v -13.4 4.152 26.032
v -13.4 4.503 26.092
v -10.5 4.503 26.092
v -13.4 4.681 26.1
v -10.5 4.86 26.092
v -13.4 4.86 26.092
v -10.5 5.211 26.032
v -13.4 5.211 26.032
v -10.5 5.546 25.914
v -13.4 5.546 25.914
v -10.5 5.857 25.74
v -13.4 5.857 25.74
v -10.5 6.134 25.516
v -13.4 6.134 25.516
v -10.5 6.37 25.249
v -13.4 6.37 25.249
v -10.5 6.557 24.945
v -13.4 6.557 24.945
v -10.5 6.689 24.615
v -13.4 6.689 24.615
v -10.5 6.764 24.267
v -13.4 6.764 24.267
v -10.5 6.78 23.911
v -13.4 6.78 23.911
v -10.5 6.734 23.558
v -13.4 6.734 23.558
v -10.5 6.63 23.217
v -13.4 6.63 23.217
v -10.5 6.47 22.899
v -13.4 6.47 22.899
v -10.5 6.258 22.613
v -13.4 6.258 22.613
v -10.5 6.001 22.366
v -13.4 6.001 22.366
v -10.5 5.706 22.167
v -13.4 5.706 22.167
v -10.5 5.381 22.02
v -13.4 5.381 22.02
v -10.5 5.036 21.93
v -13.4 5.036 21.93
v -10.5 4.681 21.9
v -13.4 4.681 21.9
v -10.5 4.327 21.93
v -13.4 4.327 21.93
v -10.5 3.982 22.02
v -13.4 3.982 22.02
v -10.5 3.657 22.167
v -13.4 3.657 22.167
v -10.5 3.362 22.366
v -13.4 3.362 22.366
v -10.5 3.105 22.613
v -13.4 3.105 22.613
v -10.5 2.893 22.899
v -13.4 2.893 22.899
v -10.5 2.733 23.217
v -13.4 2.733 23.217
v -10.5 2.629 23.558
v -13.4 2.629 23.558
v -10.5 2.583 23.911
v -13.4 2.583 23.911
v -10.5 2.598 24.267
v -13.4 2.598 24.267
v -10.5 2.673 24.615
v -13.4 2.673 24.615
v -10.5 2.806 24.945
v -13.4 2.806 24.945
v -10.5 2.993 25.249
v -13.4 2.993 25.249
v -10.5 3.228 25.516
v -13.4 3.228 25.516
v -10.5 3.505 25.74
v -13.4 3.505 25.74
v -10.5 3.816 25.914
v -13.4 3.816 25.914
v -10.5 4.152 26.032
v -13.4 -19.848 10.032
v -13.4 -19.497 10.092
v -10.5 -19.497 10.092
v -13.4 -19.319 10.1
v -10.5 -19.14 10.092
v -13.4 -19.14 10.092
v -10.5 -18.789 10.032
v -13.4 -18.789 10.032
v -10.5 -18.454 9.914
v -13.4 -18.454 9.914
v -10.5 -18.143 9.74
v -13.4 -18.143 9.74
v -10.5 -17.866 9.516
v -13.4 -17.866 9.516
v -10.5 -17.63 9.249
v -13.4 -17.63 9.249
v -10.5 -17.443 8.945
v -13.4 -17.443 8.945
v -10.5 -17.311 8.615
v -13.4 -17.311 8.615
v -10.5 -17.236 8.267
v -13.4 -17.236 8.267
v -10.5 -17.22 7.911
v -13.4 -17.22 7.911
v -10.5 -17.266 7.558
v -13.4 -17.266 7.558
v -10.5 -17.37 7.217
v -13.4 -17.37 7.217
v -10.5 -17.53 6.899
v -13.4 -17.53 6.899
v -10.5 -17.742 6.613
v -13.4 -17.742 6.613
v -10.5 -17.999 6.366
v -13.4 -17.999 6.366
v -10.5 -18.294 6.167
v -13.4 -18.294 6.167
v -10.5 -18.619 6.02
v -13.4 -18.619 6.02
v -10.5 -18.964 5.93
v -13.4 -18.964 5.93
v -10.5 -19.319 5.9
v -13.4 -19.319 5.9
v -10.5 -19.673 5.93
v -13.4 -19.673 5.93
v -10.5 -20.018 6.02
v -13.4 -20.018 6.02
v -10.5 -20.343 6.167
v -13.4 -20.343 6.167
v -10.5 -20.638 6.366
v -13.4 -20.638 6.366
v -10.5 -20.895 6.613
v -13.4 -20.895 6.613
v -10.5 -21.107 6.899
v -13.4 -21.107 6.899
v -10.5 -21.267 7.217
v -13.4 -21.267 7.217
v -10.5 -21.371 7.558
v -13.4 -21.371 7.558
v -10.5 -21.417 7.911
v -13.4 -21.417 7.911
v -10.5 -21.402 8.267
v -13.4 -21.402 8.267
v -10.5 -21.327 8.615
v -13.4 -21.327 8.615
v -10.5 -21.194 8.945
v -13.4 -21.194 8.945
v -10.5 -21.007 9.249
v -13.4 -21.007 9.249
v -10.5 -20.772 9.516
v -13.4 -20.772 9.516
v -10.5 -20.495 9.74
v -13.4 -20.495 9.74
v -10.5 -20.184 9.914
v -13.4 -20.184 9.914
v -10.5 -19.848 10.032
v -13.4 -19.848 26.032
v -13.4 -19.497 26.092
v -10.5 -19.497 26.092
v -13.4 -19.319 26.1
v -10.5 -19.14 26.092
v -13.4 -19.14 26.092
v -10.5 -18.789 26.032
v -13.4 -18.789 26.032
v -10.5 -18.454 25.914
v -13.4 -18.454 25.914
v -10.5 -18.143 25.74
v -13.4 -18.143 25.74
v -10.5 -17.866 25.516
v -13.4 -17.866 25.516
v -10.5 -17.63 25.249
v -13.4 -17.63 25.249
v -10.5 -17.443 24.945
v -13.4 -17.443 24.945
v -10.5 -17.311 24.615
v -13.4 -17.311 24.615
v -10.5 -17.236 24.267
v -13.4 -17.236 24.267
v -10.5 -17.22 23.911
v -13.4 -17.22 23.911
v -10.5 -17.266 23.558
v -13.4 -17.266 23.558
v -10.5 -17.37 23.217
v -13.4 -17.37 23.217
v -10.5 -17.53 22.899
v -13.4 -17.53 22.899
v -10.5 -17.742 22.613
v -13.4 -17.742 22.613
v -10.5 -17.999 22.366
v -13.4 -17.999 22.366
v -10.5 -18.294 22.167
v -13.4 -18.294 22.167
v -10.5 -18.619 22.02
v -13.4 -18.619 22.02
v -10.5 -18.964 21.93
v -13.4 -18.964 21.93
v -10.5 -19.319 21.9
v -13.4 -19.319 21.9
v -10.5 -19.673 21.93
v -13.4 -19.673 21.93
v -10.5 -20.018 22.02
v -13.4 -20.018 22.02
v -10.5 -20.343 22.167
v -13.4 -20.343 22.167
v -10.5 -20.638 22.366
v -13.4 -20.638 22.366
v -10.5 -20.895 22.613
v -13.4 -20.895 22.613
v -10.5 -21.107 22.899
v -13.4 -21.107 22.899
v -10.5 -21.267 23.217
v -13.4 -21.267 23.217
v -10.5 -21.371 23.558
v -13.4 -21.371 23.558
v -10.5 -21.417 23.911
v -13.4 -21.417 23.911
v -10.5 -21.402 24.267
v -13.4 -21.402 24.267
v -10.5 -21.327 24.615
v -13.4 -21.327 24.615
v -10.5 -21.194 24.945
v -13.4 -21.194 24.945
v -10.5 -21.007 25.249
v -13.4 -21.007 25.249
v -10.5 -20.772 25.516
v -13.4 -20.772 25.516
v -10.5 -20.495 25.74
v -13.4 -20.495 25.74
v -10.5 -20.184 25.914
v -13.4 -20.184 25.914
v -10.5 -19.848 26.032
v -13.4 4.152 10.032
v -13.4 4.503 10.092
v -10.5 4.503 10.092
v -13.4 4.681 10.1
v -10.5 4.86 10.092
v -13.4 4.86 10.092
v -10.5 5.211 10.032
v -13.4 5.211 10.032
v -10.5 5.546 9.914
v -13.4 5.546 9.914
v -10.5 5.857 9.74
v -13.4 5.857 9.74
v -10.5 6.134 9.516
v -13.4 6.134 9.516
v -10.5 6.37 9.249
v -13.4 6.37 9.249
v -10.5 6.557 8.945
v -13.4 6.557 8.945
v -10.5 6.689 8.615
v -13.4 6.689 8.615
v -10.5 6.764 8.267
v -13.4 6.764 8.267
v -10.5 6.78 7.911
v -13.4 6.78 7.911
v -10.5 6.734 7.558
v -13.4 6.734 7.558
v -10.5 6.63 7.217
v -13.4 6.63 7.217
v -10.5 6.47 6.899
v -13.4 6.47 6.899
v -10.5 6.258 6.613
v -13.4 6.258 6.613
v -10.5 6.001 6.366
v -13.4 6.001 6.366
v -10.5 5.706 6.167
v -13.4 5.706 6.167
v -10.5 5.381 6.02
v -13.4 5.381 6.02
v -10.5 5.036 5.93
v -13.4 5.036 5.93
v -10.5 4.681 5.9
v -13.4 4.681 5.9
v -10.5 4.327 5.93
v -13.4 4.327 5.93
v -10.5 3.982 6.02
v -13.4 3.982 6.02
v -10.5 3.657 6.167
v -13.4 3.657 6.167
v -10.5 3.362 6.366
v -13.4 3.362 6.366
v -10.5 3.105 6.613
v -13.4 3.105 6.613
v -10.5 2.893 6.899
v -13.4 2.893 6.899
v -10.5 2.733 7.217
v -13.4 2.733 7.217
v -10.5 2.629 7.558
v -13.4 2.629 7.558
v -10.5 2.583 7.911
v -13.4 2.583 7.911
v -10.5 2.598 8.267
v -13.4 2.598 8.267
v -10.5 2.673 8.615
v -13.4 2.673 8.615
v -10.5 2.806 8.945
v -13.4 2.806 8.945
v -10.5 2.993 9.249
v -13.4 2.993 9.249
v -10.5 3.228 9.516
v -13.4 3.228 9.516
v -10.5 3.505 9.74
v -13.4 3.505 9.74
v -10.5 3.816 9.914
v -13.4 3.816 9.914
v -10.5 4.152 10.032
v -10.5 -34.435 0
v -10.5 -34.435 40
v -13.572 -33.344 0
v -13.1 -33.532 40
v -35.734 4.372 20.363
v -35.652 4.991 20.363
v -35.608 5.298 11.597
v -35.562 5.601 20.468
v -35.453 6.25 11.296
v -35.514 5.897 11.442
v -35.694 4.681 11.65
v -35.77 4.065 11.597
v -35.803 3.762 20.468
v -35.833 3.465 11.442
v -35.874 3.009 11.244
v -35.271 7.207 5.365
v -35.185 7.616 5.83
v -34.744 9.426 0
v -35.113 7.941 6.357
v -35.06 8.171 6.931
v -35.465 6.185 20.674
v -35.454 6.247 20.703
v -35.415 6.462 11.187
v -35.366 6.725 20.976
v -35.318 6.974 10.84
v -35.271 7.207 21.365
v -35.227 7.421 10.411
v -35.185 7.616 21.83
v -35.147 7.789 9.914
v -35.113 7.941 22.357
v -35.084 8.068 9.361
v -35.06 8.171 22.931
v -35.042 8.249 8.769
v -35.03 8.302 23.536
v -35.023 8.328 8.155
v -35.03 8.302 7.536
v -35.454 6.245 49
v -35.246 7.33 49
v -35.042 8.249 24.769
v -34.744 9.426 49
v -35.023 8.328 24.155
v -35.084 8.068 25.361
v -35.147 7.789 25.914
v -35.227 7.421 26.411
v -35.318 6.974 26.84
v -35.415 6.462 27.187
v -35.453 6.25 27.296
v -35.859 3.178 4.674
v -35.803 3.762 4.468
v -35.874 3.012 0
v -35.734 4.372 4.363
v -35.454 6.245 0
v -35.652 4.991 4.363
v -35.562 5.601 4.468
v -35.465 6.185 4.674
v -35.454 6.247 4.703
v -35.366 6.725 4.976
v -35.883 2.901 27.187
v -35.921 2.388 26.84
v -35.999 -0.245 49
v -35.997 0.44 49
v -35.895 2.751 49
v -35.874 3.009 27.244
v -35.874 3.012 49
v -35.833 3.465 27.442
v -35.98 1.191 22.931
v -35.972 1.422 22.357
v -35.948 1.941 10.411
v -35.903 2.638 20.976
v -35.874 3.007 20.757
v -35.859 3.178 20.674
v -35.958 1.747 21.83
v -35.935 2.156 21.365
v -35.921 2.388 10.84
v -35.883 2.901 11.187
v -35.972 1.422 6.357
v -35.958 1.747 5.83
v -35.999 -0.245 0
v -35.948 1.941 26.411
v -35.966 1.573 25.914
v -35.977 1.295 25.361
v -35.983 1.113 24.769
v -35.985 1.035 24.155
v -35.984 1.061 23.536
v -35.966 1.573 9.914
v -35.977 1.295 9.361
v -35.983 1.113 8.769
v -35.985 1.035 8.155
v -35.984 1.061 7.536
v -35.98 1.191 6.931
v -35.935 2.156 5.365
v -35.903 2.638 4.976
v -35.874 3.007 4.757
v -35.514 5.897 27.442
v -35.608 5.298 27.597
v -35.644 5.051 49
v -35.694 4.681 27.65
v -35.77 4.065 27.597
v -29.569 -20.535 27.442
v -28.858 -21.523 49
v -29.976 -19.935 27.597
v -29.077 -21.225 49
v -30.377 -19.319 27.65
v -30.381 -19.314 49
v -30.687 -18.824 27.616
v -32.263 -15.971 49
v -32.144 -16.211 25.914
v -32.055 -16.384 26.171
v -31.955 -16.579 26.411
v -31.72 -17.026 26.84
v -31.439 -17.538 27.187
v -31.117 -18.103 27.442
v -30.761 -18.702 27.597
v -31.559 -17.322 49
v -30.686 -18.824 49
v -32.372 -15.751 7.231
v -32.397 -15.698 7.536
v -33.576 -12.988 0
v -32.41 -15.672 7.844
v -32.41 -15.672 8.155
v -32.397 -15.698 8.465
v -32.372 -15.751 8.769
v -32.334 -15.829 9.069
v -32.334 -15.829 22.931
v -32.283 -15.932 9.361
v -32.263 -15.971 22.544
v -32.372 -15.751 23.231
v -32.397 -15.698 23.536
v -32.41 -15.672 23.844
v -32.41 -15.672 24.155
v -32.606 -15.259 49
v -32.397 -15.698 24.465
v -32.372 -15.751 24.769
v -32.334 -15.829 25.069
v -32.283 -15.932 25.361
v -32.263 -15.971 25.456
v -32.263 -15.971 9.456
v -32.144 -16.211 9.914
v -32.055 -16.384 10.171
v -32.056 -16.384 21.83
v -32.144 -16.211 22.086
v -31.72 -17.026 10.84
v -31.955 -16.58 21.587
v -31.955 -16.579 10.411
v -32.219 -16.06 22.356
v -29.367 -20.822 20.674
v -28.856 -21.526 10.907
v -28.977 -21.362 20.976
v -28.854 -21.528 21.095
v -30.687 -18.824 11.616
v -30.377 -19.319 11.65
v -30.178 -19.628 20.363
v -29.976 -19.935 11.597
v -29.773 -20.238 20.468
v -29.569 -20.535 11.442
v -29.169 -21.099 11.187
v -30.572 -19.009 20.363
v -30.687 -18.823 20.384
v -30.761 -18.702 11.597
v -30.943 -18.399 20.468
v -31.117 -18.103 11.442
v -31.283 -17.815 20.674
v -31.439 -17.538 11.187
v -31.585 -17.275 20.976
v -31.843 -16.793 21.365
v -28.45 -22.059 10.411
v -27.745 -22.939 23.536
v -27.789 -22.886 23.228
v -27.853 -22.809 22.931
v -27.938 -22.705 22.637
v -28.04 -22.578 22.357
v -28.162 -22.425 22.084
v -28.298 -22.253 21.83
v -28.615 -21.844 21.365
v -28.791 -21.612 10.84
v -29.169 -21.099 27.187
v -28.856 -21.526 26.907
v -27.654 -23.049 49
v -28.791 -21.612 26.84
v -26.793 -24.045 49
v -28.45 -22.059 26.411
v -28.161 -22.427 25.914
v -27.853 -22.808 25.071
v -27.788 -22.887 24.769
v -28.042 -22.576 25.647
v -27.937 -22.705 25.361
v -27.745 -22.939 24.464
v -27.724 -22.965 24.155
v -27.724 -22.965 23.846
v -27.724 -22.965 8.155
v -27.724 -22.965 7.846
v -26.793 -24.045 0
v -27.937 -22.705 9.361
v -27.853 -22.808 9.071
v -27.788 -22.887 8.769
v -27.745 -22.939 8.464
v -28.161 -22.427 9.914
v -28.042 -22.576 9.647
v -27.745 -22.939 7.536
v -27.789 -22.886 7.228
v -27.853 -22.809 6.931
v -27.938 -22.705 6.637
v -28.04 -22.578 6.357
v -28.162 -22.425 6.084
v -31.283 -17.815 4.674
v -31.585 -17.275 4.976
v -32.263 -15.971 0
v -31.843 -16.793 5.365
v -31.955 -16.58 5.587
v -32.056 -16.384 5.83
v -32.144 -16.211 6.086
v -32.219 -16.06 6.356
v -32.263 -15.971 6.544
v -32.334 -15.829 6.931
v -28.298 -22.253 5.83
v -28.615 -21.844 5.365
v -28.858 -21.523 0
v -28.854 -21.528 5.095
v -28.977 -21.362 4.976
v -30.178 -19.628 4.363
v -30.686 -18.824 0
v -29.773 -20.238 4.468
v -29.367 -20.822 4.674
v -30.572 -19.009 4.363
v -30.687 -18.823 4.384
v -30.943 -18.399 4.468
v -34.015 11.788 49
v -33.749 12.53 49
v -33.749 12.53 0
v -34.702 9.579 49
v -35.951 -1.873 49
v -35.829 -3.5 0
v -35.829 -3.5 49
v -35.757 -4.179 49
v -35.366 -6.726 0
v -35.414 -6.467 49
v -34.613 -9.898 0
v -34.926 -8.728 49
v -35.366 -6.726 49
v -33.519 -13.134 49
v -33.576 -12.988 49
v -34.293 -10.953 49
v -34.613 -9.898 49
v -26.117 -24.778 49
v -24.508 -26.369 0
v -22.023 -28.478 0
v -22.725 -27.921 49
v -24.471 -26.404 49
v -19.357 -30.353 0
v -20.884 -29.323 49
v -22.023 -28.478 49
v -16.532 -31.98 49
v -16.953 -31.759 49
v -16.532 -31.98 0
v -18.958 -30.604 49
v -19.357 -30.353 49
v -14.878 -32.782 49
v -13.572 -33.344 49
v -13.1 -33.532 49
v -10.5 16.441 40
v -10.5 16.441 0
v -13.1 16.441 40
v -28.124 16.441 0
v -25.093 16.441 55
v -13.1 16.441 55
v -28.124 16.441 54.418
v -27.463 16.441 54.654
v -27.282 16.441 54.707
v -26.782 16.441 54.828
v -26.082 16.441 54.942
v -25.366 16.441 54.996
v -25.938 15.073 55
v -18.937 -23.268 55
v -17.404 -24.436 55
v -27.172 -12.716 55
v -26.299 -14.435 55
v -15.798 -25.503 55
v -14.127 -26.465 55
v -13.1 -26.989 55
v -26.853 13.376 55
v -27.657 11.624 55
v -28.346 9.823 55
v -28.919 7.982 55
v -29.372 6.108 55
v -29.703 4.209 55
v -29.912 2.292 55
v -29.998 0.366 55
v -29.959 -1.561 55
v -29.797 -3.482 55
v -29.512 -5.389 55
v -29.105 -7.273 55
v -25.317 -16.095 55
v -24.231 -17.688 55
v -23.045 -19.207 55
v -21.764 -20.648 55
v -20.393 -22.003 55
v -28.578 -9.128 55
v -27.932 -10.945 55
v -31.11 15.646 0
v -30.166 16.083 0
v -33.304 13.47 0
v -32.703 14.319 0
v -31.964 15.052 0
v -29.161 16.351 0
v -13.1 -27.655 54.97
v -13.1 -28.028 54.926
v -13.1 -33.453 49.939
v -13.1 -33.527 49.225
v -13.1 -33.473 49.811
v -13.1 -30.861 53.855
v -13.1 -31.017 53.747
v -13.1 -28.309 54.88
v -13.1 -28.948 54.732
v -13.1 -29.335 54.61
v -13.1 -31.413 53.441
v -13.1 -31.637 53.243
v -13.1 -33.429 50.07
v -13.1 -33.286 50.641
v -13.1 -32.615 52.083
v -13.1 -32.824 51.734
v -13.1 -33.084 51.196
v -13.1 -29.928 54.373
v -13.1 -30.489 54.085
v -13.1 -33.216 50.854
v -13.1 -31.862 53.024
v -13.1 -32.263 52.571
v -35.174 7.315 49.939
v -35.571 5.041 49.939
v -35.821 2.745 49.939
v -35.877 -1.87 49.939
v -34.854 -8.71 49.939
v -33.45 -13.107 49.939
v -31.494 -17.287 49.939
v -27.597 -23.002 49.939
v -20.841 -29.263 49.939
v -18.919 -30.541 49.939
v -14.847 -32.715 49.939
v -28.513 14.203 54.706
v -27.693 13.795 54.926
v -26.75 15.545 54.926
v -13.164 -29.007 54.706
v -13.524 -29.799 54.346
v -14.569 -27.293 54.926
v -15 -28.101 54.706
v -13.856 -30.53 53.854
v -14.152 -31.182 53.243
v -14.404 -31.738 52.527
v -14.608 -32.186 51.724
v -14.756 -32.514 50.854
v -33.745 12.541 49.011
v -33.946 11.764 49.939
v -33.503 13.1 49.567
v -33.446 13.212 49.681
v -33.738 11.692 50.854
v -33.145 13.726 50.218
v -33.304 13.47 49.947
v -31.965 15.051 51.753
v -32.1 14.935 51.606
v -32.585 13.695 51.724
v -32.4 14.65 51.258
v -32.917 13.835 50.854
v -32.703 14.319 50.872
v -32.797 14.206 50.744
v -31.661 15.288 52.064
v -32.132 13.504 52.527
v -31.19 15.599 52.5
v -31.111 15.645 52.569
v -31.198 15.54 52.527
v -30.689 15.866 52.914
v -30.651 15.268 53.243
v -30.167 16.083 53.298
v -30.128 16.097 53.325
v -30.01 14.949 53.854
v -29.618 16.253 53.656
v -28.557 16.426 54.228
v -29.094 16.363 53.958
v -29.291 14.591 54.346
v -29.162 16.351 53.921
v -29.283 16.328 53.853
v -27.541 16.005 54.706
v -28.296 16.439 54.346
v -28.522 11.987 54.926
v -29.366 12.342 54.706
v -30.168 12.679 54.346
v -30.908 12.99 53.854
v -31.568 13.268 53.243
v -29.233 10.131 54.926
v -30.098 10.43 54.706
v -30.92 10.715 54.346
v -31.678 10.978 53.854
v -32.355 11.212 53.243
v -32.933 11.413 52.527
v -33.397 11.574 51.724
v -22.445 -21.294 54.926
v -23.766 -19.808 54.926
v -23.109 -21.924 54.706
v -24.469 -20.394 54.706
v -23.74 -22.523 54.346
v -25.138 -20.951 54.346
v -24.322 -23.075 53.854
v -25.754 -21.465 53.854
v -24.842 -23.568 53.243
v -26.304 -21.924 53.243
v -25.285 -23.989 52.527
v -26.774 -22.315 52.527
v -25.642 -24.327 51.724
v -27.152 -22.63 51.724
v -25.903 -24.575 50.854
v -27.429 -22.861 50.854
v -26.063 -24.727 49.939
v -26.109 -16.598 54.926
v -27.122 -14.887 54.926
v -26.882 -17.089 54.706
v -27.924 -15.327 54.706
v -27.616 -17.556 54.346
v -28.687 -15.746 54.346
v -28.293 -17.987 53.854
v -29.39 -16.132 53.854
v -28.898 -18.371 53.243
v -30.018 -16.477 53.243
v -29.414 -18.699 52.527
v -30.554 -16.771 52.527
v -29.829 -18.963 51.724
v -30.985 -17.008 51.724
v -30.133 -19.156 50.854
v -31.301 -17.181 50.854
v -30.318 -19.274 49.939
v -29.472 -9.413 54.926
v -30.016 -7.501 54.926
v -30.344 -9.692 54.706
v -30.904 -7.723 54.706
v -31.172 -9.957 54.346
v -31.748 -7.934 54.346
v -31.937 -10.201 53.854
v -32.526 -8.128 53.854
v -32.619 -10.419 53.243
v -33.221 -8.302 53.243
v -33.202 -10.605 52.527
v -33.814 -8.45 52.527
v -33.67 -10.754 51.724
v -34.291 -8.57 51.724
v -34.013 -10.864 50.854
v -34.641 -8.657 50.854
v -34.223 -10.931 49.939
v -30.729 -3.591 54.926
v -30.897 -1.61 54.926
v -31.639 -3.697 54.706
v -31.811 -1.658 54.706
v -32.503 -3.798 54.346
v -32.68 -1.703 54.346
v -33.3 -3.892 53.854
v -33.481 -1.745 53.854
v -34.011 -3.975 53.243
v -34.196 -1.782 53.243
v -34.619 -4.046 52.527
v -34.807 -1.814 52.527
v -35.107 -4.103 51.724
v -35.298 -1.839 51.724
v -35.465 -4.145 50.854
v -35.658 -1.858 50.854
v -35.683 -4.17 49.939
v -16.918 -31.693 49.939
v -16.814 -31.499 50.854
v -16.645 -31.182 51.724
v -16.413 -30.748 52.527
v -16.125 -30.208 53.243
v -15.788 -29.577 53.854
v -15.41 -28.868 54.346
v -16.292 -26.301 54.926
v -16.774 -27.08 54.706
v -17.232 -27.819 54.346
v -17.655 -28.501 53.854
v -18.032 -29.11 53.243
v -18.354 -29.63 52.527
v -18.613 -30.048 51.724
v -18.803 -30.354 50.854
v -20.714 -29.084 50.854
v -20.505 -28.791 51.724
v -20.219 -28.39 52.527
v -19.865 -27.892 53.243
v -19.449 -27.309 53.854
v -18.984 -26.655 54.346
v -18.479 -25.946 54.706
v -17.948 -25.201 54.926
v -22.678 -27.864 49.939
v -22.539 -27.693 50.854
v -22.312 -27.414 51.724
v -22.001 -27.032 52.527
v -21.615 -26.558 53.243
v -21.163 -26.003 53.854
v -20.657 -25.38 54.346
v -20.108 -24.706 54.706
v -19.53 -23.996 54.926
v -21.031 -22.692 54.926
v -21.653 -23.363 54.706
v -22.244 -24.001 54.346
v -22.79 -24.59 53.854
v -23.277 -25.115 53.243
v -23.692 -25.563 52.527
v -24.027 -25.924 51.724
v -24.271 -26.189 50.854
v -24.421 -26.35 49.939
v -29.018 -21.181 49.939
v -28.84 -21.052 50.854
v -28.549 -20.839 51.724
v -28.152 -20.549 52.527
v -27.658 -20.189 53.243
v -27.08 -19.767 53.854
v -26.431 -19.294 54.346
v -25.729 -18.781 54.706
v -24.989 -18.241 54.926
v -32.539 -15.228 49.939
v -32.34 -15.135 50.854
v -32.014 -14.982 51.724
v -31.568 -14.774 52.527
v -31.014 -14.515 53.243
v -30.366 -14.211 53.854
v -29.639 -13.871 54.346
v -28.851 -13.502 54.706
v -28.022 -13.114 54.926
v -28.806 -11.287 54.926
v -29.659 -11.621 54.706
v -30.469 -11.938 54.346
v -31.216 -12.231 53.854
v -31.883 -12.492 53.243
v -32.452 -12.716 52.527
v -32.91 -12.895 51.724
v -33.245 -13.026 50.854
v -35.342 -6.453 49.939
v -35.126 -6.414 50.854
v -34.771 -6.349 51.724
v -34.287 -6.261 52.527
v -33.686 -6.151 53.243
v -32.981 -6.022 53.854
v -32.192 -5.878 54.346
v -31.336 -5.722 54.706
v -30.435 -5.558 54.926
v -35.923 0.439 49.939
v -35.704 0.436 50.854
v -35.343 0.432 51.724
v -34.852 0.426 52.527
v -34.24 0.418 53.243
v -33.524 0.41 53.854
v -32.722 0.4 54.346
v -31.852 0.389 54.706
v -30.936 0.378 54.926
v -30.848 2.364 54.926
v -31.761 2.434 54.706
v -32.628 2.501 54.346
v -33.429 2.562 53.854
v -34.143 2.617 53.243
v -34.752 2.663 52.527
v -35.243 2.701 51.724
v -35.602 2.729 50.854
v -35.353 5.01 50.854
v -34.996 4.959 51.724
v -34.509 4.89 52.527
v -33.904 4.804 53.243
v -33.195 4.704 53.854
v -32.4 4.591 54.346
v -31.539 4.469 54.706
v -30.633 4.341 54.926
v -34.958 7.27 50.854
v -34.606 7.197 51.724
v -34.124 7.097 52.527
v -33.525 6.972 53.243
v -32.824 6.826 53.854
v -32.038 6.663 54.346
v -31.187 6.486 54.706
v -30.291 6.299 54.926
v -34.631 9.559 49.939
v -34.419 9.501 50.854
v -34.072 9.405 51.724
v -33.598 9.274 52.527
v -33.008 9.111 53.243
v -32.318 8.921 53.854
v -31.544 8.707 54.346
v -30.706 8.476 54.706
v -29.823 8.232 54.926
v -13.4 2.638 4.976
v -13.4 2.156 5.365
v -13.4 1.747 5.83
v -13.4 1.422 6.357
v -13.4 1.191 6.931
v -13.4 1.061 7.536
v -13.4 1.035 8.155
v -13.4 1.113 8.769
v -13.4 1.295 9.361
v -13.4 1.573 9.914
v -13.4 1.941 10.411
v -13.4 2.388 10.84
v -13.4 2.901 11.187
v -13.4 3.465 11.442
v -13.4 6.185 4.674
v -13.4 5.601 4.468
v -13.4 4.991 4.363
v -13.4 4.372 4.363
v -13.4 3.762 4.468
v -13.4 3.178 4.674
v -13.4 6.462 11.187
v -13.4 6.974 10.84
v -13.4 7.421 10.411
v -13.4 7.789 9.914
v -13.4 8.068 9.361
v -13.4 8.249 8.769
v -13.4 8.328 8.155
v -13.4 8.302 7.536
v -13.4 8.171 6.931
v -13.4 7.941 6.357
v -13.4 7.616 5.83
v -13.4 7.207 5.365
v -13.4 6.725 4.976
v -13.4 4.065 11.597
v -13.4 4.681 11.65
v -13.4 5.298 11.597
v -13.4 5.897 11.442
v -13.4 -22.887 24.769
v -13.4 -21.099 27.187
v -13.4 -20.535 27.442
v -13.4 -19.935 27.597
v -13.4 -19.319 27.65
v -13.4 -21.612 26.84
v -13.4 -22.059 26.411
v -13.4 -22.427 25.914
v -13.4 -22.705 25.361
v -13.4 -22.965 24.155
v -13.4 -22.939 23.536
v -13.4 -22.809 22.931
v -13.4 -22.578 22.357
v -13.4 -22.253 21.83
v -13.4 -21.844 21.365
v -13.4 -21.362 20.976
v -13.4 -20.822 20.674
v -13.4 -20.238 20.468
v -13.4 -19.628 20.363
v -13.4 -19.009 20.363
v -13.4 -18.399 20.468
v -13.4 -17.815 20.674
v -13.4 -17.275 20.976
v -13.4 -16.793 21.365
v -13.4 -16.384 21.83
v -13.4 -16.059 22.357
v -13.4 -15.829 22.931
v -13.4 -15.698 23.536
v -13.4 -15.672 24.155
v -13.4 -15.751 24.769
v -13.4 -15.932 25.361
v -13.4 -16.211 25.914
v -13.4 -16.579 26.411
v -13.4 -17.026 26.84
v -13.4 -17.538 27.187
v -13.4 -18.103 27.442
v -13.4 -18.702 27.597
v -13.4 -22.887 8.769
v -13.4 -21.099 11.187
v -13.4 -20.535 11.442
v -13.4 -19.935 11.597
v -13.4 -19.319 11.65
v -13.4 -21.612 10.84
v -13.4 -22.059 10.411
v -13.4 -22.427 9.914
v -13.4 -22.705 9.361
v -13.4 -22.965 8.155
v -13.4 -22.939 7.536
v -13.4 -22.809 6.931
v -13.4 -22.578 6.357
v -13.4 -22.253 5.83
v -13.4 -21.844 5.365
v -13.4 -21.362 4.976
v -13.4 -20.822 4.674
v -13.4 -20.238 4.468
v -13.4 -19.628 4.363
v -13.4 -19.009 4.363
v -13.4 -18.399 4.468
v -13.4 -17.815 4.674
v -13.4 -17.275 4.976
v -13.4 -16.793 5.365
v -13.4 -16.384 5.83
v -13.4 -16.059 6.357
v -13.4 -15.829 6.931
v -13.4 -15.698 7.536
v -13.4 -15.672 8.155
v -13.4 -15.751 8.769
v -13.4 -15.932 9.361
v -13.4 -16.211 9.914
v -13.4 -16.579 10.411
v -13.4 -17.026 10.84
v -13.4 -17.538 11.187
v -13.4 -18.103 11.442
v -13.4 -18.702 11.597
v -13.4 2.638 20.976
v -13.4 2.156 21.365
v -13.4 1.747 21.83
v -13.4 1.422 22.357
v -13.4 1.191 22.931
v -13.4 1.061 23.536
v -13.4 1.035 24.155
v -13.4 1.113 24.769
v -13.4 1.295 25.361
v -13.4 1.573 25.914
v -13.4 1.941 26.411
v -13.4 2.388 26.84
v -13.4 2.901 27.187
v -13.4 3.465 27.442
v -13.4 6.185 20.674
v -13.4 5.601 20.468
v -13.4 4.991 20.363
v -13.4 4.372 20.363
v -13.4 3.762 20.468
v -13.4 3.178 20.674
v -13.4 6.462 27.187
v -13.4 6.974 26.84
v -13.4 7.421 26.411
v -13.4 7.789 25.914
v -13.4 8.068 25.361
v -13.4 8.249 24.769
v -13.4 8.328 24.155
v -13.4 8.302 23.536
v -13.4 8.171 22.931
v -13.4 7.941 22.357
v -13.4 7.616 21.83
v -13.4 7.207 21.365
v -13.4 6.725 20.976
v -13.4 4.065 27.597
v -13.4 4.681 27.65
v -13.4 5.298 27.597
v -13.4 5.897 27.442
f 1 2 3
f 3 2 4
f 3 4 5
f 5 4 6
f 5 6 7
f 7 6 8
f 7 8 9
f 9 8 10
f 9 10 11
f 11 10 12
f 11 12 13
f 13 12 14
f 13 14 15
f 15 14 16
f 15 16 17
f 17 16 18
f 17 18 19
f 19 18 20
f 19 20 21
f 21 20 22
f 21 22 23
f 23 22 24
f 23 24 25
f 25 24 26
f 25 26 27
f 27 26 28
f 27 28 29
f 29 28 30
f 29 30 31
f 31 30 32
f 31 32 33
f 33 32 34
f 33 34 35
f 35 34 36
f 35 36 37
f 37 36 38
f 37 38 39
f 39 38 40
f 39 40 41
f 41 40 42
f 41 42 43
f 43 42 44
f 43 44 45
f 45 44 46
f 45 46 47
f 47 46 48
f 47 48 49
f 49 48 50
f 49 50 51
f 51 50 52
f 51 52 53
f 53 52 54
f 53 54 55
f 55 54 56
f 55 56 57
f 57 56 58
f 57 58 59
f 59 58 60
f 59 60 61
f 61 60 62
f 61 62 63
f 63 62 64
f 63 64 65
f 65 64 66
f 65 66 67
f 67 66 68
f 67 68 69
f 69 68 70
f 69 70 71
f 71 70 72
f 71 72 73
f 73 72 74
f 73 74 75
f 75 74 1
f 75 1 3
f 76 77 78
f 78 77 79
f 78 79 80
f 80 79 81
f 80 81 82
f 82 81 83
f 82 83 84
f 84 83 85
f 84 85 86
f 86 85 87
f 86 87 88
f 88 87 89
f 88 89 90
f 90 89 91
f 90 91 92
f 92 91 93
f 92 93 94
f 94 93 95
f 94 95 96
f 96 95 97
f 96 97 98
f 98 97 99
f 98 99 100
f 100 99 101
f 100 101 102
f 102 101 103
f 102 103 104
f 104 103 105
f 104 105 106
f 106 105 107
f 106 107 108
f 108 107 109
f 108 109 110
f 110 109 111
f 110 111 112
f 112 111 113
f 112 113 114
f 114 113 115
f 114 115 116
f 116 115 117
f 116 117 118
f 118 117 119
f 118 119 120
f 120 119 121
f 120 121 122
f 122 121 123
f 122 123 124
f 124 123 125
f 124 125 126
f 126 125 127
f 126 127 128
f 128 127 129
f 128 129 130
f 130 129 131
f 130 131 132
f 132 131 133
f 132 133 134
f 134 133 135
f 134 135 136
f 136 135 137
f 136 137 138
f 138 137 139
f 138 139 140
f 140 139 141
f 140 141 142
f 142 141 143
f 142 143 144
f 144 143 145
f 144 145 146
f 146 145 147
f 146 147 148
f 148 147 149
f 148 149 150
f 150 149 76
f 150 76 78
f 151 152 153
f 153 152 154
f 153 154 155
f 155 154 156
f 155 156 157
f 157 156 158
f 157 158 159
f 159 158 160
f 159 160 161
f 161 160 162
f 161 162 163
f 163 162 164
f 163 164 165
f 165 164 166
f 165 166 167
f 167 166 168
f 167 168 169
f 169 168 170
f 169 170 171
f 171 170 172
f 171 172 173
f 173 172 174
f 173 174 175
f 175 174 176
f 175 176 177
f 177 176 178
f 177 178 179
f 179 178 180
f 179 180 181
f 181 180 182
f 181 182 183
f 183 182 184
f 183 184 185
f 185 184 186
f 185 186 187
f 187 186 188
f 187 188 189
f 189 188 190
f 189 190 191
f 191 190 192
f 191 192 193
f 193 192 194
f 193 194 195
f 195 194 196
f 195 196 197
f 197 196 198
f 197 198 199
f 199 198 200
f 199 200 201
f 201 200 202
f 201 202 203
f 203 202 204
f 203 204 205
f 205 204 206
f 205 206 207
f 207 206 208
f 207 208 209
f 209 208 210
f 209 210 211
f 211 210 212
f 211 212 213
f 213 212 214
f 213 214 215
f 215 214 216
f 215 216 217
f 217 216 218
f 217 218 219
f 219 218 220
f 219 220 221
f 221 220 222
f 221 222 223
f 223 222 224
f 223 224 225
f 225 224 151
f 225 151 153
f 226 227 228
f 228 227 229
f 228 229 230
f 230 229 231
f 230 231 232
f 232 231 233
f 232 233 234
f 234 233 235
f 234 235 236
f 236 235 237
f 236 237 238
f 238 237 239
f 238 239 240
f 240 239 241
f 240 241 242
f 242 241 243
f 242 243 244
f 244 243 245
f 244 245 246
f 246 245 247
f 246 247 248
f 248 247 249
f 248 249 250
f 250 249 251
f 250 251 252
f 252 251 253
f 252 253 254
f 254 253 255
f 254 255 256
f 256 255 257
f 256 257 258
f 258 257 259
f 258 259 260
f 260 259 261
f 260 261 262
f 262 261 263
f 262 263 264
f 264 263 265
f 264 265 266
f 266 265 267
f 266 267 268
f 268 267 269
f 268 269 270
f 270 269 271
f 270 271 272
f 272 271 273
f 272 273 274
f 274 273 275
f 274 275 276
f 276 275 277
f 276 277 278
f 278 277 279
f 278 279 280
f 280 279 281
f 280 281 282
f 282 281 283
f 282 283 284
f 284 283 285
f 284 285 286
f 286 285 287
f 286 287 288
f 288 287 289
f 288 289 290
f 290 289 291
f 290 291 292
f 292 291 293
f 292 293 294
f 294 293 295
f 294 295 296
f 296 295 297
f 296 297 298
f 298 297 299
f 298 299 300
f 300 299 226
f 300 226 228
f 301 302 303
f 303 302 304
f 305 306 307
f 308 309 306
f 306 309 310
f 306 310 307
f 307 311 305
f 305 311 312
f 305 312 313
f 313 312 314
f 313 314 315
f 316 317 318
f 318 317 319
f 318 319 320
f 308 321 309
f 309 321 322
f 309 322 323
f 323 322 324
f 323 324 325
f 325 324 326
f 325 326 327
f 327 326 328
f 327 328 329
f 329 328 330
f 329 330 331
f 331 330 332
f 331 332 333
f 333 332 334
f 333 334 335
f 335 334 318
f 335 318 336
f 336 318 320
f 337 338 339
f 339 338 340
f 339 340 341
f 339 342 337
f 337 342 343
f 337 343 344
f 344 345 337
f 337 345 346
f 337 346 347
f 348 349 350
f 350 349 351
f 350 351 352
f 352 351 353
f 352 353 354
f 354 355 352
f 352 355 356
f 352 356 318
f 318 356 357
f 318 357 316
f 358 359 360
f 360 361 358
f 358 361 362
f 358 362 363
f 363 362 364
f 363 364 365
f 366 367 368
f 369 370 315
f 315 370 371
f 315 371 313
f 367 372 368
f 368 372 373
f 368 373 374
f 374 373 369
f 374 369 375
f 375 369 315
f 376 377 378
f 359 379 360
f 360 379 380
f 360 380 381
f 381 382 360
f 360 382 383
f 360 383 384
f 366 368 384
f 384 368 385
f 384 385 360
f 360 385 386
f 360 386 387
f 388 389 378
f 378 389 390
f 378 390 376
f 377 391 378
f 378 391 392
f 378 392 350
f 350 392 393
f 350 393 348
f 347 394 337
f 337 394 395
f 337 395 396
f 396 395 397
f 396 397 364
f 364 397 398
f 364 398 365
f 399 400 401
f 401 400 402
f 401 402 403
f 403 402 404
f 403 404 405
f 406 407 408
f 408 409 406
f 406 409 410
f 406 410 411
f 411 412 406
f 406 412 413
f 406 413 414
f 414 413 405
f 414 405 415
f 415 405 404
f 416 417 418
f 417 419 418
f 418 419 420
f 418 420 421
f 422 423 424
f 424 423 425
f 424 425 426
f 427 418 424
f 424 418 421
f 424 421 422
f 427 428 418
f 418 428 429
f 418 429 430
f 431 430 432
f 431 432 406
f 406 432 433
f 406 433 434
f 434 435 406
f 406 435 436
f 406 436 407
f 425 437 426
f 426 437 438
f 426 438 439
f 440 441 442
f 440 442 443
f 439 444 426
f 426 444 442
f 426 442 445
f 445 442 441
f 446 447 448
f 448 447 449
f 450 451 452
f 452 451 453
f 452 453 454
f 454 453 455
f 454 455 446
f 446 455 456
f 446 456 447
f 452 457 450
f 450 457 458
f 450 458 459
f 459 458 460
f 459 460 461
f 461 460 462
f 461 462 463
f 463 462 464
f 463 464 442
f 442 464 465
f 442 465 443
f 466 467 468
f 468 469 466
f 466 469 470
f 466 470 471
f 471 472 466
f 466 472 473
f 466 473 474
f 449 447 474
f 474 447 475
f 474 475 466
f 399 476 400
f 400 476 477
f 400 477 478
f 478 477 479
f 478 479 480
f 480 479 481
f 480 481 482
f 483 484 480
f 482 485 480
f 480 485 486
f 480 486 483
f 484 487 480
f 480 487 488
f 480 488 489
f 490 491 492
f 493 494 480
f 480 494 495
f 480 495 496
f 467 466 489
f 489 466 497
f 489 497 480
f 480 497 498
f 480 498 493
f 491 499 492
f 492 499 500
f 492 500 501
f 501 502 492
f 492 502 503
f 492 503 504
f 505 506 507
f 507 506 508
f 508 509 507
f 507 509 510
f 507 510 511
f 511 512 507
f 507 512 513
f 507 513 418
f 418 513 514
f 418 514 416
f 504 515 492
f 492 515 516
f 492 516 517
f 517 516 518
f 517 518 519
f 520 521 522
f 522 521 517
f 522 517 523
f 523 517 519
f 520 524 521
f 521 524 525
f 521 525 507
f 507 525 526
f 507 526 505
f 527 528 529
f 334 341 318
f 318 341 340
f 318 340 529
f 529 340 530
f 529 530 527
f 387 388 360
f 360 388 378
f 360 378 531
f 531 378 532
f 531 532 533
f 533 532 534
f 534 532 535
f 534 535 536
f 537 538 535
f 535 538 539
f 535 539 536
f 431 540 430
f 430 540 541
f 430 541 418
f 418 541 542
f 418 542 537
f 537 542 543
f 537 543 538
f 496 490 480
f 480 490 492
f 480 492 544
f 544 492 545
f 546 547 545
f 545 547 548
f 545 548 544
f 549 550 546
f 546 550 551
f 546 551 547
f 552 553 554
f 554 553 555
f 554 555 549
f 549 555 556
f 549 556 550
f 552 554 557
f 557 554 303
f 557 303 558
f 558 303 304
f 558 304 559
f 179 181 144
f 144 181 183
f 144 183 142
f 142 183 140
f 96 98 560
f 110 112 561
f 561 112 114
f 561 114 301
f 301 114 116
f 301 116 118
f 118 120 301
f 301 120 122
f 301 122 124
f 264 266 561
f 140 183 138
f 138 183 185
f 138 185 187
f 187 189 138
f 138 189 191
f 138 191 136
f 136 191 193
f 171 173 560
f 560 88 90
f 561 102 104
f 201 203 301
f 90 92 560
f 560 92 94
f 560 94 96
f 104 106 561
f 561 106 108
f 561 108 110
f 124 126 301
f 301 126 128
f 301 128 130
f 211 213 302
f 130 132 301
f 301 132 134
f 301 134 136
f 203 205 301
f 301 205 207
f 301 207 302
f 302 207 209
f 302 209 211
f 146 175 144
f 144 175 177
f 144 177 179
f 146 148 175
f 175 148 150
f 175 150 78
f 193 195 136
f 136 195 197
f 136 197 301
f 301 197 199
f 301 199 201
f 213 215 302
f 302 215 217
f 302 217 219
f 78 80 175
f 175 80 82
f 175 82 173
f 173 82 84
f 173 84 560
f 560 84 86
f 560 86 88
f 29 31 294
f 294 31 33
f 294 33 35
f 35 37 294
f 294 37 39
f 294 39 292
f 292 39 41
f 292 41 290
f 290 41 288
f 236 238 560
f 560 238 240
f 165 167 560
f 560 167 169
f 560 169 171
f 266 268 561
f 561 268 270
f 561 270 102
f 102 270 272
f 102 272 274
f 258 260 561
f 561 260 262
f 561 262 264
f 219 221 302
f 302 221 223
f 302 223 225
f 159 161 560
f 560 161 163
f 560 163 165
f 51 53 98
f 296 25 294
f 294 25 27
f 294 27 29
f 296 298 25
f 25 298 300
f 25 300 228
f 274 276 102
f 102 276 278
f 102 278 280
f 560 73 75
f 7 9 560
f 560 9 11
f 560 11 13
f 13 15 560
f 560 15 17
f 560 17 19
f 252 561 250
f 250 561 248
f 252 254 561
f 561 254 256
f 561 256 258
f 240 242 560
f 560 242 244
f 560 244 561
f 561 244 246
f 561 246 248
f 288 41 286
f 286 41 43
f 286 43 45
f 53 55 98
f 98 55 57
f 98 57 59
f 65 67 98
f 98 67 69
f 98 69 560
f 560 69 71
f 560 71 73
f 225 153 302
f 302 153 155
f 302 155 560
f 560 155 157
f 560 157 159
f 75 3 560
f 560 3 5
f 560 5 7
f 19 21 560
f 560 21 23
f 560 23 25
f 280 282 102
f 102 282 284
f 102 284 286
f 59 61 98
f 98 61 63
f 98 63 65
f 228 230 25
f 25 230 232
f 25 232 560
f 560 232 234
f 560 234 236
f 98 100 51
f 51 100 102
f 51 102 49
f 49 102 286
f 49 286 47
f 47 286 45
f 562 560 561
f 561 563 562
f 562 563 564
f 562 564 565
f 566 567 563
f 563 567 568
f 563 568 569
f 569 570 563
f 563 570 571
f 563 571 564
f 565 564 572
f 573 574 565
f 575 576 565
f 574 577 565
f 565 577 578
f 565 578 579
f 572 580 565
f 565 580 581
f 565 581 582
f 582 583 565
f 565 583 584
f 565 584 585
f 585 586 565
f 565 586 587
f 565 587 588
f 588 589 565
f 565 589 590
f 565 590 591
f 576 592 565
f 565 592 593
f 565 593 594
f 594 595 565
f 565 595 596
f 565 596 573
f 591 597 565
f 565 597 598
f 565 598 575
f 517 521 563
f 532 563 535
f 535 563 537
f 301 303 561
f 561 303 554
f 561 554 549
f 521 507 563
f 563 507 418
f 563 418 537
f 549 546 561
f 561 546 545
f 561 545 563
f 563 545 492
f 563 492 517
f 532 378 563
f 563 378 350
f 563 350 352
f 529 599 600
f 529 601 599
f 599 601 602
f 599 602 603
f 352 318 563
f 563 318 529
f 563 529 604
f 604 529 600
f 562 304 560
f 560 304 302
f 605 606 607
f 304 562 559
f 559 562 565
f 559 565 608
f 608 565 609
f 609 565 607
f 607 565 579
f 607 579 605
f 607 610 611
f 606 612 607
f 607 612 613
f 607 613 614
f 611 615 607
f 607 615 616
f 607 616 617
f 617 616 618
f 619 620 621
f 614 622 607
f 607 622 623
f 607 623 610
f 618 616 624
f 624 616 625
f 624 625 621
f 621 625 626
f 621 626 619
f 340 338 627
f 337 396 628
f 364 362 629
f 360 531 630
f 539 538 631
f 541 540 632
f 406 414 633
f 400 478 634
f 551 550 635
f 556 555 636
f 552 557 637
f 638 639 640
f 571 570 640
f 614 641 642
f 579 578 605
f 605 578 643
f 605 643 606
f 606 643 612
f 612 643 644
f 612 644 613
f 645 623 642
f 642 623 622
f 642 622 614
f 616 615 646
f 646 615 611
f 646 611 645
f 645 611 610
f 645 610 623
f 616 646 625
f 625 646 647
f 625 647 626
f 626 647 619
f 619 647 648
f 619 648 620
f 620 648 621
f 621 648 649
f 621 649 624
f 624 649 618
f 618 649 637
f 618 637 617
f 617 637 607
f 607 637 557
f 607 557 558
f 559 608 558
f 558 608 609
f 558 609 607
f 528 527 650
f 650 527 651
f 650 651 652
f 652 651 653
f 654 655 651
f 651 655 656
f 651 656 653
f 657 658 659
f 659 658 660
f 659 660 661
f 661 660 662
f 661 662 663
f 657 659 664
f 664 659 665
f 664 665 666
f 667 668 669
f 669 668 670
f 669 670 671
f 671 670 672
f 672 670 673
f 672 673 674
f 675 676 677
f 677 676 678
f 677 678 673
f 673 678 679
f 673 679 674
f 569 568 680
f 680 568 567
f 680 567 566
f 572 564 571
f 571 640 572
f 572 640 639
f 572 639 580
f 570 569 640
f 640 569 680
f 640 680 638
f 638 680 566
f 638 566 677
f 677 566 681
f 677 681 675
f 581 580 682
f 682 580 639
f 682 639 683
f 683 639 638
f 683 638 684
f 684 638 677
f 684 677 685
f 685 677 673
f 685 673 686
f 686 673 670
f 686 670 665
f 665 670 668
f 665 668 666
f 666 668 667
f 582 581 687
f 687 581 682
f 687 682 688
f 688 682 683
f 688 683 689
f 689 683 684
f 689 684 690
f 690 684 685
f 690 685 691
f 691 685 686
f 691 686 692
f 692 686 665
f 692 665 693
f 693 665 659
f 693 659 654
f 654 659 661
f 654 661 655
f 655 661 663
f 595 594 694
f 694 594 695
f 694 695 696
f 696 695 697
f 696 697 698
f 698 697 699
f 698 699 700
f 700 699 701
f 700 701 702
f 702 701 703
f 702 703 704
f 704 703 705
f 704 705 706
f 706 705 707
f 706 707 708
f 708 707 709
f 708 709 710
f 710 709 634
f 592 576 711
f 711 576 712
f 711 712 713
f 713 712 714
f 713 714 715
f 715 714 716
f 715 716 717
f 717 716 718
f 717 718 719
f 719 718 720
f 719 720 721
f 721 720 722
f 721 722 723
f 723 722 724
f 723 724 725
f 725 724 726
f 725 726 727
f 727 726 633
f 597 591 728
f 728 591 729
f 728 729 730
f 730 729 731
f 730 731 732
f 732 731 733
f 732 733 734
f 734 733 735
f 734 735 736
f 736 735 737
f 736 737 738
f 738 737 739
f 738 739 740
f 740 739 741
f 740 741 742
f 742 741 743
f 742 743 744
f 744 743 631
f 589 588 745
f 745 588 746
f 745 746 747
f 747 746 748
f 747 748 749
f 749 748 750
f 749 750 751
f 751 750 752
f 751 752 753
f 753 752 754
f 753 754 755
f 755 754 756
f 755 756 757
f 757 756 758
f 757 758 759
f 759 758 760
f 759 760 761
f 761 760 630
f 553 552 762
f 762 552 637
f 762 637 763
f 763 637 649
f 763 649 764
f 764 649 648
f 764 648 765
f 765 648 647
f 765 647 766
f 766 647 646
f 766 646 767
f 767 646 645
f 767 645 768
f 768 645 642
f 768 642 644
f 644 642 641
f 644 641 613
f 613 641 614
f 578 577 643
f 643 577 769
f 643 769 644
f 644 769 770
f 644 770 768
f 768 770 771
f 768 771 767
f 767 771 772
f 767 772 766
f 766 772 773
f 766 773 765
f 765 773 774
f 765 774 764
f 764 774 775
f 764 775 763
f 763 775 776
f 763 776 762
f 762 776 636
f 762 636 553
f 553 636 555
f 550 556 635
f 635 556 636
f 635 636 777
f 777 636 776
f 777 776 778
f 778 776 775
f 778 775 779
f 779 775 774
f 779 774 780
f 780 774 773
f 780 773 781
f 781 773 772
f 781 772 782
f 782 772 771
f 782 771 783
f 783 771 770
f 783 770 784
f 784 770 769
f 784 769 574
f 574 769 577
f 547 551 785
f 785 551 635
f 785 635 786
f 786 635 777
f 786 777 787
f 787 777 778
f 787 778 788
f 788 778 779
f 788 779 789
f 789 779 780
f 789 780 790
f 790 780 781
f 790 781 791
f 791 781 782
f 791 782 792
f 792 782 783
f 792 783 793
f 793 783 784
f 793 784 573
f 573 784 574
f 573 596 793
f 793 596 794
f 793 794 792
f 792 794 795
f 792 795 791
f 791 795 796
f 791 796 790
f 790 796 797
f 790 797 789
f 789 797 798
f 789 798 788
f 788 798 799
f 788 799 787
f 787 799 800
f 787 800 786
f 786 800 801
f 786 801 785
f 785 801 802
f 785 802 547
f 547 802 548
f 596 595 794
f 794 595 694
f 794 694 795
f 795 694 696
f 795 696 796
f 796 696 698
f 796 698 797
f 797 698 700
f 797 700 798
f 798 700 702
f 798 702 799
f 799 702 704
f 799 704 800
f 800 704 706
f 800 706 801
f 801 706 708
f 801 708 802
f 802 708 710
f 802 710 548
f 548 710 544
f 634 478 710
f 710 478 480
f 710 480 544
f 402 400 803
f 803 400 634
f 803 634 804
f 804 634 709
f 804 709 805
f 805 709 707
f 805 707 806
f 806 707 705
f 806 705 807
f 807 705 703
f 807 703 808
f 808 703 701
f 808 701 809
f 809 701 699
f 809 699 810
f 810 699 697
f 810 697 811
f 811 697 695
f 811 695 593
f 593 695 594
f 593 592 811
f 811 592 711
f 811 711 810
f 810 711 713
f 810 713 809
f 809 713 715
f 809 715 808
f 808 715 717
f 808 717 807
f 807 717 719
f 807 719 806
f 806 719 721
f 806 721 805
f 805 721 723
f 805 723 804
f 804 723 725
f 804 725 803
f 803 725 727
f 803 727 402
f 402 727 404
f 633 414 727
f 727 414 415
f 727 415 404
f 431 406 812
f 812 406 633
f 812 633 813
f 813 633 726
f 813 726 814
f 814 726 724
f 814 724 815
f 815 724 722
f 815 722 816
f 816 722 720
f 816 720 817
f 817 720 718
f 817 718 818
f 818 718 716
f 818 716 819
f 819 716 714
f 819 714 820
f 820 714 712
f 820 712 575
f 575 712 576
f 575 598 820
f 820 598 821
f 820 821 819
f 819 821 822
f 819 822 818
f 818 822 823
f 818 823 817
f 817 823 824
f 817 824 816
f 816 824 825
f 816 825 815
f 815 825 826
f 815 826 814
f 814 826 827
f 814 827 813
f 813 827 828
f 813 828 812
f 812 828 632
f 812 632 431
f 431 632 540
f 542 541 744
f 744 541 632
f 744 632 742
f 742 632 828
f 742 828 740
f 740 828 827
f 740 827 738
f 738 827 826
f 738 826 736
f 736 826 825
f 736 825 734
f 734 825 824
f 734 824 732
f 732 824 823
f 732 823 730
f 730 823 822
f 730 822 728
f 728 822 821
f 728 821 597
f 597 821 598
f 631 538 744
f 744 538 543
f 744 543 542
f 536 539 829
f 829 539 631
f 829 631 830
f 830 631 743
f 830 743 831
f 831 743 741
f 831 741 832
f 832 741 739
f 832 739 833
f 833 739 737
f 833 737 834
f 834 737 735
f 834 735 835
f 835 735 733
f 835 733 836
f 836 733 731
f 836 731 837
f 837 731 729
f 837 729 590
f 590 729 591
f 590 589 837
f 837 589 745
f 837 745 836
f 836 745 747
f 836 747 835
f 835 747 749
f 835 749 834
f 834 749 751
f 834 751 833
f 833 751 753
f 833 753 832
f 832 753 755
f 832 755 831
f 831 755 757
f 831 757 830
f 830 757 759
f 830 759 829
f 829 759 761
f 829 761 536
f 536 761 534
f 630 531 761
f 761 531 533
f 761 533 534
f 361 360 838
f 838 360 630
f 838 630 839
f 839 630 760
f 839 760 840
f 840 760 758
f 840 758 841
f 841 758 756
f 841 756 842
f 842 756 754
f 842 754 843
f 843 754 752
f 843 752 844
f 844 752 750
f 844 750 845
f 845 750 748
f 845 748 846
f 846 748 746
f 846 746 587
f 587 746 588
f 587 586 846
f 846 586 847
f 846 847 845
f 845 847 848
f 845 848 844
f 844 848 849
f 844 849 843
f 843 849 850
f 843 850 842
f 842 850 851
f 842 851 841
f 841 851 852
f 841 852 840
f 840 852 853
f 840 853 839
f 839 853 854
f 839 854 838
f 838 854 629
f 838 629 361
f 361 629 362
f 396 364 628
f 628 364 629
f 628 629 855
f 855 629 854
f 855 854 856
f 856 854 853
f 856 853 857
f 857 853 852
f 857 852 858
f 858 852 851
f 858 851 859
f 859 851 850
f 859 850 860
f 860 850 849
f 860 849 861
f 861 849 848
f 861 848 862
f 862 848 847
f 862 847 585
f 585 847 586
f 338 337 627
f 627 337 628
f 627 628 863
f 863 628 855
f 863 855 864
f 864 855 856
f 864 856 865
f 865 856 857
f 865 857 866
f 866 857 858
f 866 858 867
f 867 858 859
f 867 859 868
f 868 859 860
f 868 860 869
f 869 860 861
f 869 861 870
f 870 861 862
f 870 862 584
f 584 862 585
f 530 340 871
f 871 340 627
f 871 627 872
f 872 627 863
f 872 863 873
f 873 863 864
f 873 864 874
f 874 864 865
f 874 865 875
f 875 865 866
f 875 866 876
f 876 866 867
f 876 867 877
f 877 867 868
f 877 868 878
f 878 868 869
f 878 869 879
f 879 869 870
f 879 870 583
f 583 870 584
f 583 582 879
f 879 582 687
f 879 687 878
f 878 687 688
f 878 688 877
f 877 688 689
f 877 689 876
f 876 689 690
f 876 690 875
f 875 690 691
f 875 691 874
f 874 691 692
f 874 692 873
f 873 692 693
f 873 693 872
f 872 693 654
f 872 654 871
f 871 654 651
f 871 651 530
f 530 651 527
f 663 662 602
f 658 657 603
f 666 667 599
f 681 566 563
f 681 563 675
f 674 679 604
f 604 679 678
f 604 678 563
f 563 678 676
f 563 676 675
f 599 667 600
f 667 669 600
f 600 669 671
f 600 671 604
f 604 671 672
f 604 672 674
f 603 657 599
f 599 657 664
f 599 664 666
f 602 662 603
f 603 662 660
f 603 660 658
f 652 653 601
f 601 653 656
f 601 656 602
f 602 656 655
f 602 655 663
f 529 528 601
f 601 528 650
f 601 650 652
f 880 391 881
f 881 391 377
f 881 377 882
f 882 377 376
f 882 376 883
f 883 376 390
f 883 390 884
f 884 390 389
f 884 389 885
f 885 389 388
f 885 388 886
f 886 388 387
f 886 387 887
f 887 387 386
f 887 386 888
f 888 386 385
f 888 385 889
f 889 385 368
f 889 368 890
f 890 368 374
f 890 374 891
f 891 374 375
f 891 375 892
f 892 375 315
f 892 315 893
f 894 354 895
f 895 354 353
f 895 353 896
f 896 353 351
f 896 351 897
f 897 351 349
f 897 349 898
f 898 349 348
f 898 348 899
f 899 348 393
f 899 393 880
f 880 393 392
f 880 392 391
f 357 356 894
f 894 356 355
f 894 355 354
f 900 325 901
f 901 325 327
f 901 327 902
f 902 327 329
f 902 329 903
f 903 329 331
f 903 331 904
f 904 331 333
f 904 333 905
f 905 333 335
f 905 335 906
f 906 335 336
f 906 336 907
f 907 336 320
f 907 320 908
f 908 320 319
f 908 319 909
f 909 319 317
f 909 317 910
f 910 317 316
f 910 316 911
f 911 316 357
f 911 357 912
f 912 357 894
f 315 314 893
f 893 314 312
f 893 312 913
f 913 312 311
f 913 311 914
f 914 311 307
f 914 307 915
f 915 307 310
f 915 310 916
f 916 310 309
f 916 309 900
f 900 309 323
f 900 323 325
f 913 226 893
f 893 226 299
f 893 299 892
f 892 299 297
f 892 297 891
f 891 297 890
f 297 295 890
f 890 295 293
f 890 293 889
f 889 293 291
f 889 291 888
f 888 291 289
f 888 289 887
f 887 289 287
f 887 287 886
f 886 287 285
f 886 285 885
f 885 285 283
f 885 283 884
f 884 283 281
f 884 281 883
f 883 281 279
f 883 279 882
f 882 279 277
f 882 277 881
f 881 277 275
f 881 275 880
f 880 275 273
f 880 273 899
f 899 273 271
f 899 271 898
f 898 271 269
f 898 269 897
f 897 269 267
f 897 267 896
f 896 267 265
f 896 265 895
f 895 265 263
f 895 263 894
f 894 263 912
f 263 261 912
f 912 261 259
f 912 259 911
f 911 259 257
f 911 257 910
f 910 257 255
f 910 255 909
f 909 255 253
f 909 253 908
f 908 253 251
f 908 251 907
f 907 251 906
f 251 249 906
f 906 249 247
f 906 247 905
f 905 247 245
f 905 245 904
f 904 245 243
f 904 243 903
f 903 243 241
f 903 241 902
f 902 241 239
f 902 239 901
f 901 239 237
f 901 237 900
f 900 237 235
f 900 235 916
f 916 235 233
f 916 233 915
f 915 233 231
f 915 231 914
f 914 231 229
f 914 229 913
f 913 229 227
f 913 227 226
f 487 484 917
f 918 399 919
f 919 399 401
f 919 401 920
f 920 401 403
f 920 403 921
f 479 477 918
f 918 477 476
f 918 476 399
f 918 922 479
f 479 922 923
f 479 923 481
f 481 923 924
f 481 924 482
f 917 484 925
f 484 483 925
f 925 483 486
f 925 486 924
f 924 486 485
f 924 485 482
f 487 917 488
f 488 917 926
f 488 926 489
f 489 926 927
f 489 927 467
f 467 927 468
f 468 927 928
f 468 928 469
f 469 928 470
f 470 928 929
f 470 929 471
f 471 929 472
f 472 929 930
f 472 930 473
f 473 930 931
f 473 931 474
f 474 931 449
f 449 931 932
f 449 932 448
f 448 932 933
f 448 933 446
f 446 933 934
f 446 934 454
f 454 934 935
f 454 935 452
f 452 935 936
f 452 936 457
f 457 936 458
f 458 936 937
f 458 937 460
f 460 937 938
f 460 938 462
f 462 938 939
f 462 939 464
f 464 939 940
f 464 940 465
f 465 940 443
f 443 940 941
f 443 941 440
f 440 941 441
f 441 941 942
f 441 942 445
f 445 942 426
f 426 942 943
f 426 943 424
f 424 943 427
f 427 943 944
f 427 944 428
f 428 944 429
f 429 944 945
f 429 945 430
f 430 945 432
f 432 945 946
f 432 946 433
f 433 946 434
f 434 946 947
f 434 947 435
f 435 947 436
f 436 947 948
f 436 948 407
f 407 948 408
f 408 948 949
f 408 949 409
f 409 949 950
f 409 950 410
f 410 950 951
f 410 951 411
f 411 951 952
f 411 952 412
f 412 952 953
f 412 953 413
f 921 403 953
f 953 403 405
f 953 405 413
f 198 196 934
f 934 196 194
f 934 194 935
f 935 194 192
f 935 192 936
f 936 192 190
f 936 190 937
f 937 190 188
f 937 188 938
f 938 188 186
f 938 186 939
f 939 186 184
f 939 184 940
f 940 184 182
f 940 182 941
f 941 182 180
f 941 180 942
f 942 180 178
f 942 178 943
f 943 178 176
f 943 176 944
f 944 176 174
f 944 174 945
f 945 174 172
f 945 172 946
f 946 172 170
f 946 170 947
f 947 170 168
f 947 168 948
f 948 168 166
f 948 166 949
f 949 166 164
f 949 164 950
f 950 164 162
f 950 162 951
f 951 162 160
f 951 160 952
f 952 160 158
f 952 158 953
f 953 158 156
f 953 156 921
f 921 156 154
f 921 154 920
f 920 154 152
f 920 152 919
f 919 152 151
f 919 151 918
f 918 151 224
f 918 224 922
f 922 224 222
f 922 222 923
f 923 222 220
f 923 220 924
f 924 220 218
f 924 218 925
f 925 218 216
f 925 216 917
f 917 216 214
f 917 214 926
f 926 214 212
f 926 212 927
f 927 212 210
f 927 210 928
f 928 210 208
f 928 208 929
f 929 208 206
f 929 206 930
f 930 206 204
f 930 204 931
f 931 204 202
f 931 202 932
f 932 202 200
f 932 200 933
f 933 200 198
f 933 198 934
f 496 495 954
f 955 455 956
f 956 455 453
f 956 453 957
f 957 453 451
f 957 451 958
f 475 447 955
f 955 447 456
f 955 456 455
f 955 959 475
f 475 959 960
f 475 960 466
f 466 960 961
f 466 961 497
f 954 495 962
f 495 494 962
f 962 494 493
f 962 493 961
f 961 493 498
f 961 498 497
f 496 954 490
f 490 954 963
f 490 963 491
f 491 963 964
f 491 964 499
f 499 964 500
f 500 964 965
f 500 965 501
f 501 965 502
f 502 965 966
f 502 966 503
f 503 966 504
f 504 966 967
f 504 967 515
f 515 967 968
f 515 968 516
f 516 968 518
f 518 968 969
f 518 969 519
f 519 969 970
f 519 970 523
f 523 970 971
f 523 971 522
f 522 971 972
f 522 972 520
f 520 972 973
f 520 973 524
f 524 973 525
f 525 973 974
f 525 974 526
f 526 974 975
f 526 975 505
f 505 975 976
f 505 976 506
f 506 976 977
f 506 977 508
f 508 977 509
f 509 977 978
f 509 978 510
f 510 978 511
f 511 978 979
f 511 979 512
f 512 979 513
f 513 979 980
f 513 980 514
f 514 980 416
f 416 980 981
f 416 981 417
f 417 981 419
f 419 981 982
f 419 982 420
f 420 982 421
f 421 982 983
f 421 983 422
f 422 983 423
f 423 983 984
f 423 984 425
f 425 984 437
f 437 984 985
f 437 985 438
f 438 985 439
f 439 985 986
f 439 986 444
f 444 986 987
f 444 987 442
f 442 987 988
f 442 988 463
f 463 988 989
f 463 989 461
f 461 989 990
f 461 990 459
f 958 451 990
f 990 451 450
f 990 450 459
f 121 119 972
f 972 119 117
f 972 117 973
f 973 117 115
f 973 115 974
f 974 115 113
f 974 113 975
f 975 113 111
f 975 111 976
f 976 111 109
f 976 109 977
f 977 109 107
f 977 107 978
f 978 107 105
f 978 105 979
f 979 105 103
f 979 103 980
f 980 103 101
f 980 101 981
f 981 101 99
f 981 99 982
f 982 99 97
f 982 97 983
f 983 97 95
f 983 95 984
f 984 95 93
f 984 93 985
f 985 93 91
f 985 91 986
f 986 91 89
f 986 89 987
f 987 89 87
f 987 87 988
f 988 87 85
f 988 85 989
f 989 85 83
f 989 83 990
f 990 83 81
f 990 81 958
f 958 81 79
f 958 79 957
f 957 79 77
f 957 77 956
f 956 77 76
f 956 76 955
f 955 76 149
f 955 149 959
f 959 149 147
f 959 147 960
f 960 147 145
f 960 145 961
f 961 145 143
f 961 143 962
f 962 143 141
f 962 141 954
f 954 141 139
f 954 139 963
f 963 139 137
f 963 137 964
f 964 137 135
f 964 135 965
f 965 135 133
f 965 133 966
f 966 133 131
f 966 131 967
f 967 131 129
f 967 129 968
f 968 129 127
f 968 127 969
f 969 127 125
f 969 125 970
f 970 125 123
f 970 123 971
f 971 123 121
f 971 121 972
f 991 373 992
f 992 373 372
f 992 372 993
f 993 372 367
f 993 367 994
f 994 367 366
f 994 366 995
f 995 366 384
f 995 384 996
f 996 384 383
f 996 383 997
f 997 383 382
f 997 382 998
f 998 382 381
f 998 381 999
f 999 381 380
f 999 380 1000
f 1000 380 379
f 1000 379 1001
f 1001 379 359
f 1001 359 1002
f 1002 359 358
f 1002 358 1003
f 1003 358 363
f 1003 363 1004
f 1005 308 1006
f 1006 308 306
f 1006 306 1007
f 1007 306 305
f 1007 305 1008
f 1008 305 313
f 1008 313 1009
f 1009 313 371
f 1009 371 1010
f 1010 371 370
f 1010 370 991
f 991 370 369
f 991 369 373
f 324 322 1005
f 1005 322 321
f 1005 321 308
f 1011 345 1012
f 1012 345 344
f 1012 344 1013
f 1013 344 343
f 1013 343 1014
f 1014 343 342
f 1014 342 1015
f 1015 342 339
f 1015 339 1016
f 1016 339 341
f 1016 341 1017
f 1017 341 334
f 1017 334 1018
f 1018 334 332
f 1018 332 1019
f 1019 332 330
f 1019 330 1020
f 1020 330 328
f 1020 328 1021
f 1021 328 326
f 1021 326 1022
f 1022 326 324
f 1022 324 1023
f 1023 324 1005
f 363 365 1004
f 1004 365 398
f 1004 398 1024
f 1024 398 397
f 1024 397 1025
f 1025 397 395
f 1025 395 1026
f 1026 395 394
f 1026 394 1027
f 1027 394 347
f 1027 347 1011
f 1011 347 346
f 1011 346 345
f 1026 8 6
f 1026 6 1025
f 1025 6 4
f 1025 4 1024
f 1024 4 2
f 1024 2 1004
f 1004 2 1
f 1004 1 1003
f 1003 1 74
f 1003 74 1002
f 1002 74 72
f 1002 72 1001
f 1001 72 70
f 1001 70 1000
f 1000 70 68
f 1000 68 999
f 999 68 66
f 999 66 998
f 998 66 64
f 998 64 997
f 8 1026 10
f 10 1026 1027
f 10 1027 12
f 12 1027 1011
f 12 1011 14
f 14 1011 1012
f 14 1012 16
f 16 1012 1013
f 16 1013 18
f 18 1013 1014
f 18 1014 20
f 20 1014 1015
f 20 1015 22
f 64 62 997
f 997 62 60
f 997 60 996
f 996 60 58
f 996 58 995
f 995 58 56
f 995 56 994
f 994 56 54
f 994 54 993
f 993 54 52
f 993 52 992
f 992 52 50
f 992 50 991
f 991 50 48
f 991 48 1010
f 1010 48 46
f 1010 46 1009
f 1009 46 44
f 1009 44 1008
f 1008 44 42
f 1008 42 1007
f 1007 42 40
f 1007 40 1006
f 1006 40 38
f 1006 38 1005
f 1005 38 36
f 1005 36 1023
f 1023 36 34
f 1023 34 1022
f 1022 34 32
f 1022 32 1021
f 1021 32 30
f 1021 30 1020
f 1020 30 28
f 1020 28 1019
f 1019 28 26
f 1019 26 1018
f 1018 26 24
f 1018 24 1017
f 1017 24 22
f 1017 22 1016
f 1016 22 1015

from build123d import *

# Parameters (mm, degrees)
BOSS_EXTRUDE1_DEPTH = 55
SKETCH2_W           = 15
SKETCH2_H           = 50.876134921
CUT_EXTRUDE1_DEPTH  = 2.6
SKETCH3_R           = 2.1
CUT_EXTRUDE2_DEPTH  = 32.6
FILLET2_R           = 6
SKETCH4_R           = 3.65
CUT_EXTRUDE3_DEPTH  = 22.6


with BuildPart() as part:
    # Sketch1 → Boss-Extrude1 (new body)
    with BuildSketch(Plane.XY):
        with BuildLine():
            Line((-10.5, 16.441414071), (-10.5, -34.43472085))
            ThreePointArc((-10.5, -34.43472085), (-33.154419012, -14.027989876), (-32.026237733, 16.441414071))
            Line((-32.026237733, 16.441414071), (-10.5, 16.441414071))
        make_face()
    extrude(amount=BOSS_EXTRUDE1_DEPTH)

    # Sketch2 → Cut-Extrude1 (cut)
    with BuildSketch(Plane(origin=(-10.5, 0, 0), x_dir=(0, 0, -1), z_dir=(1, 0, 0))):
        with Locations((-47.5, -8.99665339)):
            Rectangle(SKETCH2_W, SKETCH2_H)
    extrude(amount=-CUT_EXTRUDE1_DEPTH, mode=Mode.SUBTRACT)

    # Sketch3 → Cut-Extrude2 (cut)
    with BuildSketch(Plane(origin=(-10.5, 0, 0), x_dir=(0, 0, -1), z_dir=(1, 0, 0))):
        with Locations((-8, 4.681414071)):
            Circle(SKETCH3_R)
        with Locations((-24, 4.681414071)):
            Circle(SKETCH3_R)
        with Locations((-24, -19.318585929)):
            Circle(SKETCH3_R)
        with Locations((-8, -19.318585929)):
            Circle(SKETCH3_R)
    extrude(amount=-CUT_EXTRUDE2_DEPTH, mode=Mode.SUBTRACT)

    # Fillet2
    fillet2_edges = [part.edges().sort_by_distance(p)[0] for p in [
        (-33.666422287, -12.750372951, 55),
        (-32.026237733, 16.441414071, 27.5),
    ]]
    fillet(fillet2_edges, radius=FILLET2_R)

    # Sketch4 → Cut-Extrude3 (cut)
    with BuildSketch(Plane.ZY.offset(36)):
        with Locations((8, 4.681414071)):
            Circle(SKETCH4_R)
        with Locations((24, 4.681414071)):
            Circle(SKETCH4_R)
        with Locations((24, -19.318585929)):
            Circle(SKETCH4_R)
        with Locations((8, -19.318585929)):
            Circle(SKETCH4_R)
    extrude(amount=-CUT_EXTRUDE3_DEPTH, mode=Mode.SUBTRACT)


solid = part.part
